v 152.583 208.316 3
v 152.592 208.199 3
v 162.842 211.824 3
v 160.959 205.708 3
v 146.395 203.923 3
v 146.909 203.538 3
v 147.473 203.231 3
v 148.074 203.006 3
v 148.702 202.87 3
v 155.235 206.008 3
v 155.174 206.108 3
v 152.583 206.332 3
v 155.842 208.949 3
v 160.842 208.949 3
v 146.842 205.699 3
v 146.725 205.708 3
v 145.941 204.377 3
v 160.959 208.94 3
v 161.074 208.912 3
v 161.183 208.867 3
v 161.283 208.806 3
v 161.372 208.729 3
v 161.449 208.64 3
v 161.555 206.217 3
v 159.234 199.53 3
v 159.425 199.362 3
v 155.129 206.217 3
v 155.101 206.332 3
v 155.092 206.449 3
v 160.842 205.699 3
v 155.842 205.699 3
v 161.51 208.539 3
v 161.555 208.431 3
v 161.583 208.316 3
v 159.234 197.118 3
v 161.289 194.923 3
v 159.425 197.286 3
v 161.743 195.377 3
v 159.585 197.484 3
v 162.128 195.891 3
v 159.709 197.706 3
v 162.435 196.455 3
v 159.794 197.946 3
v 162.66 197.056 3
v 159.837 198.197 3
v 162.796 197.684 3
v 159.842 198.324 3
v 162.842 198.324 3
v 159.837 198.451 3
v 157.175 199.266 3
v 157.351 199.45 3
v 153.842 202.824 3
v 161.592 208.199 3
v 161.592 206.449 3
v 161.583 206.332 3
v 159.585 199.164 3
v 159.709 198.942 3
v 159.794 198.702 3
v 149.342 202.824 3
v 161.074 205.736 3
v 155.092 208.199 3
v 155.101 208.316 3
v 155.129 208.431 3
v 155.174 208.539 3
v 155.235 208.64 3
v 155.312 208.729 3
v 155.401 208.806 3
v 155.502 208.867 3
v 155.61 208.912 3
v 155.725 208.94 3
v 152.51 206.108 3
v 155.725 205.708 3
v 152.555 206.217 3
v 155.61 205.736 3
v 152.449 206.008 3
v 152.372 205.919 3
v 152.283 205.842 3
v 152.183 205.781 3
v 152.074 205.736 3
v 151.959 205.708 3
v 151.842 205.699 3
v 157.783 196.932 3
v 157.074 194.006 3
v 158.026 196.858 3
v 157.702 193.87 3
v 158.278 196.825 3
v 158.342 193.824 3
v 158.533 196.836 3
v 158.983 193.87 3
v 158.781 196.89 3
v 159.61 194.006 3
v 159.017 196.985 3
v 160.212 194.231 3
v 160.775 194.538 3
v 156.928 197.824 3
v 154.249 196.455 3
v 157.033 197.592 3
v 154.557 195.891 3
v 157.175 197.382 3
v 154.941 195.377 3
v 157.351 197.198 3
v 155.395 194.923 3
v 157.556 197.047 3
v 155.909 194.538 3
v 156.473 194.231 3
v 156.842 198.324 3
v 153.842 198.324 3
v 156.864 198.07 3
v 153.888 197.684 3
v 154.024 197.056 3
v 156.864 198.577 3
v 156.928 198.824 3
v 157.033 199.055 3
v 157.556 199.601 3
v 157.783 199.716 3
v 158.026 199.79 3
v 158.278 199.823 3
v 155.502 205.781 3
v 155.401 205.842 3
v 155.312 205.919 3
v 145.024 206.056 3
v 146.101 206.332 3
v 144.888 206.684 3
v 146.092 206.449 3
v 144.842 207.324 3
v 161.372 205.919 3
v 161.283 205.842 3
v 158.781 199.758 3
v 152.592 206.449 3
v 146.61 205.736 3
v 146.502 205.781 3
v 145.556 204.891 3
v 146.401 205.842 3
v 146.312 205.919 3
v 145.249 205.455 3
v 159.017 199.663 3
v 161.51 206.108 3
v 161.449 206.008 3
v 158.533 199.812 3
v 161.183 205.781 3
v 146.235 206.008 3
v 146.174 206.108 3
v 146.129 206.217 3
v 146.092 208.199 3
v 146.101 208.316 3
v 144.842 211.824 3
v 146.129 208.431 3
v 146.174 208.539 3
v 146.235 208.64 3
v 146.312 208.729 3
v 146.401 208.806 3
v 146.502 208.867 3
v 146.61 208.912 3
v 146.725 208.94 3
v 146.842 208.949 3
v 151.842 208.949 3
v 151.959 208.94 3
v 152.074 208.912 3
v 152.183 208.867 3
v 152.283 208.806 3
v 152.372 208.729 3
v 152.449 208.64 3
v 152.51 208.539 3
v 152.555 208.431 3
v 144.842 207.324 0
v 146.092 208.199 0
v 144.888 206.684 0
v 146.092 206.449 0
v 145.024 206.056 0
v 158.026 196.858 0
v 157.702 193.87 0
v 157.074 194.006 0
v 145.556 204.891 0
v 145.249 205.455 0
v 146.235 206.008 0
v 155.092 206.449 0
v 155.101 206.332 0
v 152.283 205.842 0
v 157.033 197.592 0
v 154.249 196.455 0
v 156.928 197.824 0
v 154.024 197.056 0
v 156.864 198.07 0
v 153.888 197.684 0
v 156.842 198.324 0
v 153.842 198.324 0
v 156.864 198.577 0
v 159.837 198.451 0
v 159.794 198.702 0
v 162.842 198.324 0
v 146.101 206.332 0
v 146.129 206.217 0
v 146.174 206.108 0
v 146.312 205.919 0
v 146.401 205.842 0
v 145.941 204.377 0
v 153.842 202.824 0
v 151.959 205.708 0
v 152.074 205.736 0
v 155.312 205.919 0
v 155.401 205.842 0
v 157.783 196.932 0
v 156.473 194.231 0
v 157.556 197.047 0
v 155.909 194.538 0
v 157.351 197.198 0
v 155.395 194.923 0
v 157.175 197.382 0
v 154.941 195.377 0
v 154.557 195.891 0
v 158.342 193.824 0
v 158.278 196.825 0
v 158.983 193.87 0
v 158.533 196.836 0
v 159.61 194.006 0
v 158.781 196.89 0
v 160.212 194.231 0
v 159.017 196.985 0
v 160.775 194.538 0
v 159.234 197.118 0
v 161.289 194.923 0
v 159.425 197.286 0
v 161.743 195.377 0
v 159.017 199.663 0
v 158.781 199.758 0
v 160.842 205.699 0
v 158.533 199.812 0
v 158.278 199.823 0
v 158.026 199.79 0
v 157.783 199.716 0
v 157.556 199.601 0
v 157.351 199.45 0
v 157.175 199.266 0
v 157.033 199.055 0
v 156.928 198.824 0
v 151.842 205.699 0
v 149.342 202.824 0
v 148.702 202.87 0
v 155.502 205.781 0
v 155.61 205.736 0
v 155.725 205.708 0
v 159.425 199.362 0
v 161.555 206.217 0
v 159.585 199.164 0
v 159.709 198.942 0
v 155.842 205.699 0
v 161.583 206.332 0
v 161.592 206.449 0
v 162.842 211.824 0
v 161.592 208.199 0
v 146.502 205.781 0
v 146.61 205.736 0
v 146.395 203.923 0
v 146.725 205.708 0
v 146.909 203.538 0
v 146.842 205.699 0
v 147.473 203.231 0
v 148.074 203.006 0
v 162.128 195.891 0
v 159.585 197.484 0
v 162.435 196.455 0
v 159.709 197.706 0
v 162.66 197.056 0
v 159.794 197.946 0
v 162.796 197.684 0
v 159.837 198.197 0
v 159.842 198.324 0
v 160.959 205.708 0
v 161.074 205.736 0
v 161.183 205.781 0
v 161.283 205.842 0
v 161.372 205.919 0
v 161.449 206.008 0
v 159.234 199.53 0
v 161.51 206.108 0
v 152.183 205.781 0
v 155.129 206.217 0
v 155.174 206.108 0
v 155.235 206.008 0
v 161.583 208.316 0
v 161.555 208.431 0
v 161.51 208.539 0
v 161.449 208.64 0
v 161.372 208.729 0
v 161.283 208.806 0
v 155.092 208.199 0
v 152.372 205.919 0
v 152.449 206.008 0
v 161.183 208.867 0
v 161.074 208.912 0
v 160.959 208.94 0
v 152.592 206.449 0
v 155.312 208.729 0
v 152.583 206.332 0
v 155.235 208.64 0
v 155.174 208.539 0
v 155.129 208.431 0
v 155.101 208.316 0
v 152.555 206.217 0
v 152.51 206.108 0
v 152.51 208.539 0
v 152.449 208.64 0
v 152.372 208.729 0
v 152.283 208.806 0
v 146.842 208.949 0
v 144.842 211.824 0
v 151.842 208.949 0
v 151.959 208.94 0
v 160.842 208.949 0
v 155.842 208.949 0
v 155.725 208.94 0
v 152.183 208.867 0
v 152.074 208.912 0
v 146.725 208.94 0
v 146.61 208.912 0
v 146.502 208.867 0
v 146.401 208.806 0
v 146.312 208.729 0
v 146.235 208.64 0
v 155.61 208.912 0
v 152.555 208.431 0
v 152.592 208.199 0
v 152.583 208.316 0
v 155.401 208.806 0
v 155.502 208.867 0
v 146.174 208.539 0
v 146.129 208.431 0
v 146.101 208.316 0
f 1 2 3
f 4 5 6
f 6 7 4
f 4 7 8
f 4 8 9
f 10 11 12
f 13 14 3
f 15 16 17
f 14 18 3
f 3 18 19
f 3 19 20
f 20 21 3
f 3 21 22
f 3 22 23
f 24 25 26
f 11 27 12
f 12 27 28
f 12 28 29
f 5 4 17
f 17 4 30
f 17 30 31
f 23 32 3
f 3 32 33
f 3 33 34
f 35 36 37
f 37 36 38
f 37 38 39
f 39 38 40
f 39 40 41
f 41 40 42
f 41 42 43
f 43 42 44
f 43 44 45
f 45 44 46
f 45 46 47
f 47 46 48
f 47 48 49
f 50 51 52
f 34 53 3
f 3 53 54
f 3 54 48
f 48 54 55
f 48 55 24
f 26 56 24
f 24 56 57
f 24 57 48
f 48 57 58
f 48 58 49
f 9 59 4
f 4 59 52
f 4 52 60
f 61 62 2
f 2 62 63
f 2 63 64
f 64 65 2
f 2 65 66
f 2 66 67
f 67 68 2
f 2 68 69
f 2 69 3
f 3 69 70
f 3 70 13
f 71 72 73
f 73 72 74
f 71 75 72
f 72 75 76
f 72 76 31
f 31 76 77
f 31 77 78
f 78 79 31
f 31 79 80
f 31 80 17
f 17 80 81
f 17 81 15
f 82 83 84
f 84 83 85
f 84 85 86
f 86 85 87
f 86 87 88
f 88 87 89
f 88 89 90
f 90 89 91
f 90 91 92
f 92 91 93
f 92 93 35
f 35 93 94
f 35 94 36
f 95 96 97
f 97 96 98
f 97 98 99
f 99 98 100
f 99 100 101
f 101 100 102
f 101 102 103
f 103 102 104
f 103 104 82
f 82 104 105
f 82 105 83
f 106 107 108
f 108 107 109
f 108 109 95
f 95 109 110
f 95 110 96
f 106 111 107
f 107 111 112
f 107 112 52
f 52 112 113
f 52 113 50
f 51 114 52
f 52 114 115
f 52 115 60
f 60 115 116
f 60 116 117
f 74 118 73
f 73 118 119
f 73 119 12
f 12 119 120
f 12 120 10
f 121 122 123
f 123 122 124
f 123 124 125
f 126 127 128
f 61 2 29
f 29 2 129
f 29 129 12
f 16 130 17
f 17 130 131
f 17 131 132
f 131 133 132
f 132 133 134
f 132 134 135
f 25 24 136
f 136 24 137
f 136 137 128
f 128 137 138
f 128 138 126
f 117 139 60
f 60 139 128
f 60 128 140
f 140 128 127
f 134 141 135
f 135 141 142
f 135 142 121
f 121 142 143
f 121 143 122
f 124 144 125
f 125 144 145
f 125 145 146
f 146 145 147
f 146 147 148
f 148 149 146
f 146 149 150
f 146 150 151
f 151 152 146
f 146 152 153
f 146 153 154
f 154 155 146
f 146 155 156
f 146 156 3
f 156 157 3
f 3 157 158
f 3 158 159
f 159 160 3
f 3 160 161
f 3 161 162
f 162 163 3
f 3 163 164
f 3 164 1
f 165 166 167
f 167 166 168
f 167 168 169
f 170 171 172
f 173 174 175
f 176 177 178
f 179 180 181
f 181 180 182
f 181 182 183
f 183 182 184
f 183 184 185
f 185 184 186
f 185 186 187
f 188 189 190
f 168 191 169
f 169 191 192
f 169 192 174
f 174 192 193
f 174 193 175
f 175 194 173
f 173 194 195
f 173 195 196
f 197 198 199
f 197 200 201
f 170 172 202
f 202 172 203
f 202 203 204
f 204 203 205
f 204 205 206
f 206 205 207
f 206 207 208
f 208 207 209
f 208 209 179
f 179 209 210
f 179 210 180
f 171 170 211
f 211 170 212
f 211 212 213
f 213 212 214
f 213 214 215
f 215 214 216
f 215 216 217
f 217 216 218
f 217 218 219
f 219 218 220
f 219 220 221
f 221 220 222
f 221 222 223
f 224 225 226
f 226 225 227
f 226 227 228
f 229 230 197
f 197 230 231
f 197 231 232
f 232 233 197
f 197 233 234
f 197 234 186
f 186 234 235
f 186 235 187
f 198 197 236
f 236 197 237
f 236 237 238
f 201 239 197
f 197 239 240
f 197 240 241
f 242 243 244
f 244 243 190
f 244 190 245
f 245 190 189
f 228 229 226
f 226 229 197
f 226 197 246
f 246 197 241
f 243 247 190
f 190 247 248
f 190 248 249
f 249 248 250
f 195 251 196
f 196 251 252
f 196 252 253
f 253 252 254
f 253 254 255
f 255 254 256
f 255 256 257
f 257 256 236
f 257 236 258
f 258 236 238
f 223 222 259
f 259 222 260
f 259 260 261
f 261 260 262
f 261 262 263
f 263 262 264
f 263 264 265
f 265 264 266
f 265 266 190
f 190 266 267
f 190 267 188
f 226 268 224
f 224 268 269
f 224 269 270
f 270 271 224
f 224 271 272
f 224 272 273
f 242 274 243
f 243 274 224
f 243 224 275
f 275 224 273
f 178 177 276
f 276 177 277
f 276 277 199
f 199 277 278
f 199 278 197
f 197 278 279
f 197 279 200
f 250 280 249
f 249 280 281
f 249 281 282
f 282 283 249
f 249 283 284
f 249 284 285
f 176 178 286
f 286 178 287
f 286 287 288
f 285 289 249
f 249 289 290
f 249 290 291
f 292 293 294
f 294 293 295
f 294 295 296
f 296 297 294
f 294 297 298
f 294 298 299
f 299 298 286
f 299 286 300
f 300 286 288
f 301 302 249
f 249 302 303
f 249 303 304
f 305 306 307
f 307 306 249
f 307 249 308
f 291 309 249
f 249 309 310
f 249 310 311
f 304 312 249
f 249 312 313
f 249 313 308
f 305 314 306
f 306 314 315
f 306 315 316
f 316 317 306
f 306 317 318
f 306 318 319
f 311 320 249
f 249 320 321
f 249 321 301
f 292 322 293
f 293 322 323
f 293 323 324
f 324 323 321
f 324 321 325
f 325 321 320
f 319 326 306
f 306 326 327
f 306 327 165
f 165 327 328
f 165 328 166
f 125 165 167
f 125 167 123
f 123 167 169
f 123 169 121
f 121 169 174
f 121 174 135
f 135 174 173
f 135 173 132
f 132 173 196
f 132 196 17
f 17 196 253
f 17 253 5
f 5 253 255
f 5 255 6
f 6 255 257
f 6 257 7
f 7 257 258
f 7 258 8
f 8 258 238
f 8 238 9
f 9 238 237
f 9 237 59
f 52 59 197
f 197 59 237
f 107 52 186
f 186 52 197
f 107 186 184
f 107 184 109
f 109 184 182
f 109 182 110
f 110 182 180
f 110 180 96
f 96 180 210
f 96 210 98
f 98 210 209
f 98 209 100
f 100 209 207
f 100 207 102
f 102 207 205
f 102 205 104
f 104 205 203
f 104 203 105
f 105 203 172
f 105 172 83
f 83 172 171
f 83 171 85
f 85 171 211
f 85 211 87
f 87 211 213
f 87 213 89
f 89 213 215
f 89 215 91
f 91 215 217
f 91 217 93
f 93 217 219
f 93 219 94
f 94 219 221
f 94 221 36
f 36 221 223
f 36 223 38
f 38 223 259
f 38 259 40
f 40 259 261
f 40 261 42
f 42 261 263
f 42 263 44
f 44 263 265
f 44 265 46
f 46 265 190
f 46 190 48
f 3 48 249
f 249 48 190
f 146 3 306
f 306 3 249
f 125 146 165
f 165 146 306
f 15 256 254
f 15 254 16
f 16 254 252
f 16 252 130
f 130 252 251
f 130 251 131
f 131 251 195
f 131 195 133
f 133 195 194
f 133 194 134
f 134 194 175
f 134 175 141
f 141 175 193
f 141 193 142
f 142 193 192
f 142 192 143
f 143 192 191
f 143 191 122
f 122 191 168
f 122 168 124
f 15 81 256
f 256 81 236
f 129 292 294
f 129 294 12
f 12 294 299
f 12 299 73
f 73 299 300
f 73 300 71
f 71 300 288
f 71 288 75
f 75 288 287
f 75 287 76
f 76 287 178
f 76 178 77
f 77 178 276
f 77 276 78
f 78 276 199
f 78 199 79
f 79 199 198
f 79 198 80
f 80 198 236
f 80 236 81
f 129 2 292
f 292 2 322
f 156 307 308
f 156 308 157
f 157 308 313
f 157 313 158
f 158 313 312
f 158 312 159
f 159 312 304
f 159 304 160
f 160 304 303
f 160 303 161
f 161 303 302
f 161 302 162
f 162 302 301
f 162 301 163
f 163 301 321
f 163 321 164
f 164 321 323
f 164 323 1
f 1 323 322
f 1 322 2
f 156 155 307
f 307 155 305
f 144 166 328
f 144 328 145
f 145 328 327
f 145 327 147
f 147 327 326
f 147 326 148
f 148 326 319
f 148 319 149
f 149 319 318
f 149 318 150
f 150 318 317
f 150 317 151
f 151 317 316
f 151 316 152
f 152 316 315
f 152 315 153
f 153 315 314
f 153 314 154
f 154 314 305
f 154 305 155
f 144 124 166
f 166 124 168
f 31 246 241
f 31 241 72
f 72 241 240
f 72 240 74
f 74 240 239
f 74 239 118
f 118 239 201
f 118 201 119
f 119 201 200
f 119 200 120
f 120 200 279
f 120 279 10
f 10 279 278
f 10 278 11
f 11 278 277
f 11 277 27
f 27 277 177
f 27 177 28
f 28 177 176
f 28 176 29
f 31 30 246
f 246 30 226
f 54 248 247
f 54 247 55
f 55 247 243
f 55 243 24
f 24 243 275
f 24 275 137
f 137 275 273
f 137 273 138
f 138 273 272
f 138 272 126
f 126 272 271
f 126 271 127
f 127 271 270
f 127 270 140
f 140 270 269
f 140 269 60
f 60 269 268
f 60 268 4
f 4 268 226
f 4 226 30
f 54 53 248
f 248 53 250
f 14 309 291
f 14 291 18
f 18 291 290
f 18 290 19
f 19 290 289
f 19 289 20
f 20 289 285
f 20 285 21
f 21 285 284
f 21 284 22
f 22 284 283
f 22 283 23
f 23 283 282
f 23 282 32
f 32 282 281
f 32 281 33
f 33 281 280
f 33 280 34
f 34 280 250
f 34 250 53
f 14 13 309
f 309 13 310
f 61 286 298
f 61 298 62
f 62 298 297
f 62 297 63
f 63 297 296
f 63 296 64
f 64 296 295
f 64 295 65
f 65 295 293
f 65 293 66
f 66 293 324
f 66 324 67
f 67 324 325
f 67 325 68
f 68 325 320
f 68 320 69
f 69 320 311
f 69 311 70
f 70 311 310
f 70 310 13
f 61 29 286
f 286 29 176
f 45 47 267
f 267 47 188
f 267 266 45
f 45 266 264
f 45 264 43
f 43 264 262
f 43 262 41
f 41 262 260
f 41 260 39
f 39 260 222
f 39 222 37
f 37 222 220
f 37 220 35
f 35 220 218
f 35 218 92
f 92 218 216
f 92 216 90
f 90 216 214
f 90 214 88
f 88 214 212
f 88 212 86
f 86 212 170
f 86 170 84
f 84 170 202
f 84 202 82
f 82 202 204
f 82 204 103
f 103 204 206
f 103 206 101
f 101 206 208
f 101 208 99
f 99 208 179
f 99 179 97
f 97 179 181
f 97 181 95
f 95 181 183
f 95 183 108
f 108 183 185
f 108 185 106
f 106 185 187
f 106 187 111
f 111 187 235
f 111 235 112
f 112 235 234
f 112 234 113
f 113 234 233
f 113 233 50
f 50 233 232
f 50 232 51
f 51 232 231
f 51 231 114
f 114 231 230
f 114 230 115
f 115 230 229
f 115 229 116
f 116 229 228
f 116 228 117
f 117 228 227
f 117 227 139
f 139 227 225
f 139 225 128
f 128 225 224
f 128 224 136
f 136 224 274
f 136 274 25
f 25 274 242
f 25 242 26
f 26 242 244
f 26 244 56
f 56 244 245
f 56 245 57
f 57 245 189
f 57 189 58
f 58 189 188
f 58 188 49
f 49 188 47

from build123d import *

# Parameters (mm, degrees)
MODEL_R                 = 1.5
SALIENTE_EXTRUIR1_DEPTH = 3


with BuildPart() as part:
    # Model → Saliente-Extruir1 (new body)
    with BuildSketch(Plane.XY):
        with BuildLine():
            Line((149.34213351, 211.823953209), (158.34213351, 211.823953209))
            Line((158.34213351, 211.823953209), (162.84213351, 211.823953209))
            Line((162.84213351, 211.823953209), (162.84213351, 198.323953209))
            ThreePointArc((162.84213351, 198.323953209), (158.34213351, 193.823953209), (153.84213351, 198.323953209))
            Line((153.84213351, 198.323953209), (153.84213351, 202.823953209))
            Line((153.84213351, 202.823953209), (149.34213351, 202.823953209))
            ThreePointArc((149.34213351, 202.823953209), (146.160152994, 204.141972694), (144.84213351, 207.323953209))
            Line((144.84213351, 207.323953209), (144.84213351, 211.823953209))
            Line((144.84213351, 211.823953209), (149.34213351, 211.823953209))
        make_face()
        with Locations((158.34213351, 198.323953209)):
            Circle(MODEL_R, mode=Mode.SUBTRACT)
        with BuildLine():
            Line((151.84213351, 205.698953209), (146.84213351, 205.698953209))
            ThreePointArc((146.84213351, 205.698953209), (146.311803424, 205.918623123), (146.09213351, 206.448953209))
            Line((146.09213351, 206.448953209), (146.09213351, 208.198953209))
            ThreePointArc((146.09213351, 208.198953209), (146.311803424, 208.729283295), (146.84213351, 208.948953209))
            Line((146.84213351, 208.948953209), (151.84213351, 208.948953209))
            ThreePointArc((151.84213351, 208.948953209), (152.372463595, 208.729283295), (152.59213351, 208.198953209))
            Line((152.59213351, 208.198953209), (152.59213351, 206.448953209))
            ThreePointArc((152.59213351, 206.448953209), (152.372463595, 205.918623123), (151.84213351, 205.698953209))
        make_face(mode=Mode.SUBTRACT)
        with BuildLine():
            Line((160.84213351, 205.698953209), (155.84213351, 205.698953209))
            ThreePointArc((155.84213351, 205.698953209), (155.311803424, 205.918623123), (155.09213351, 206.448953209))
            Line((155.09213351, 206.448953209), (155.09213351, 208.198953209))
            ThreePointArc((155.09213351, 208.198953209), (155.311803424, 208.729283295), (155.84213351, 208.948953209))
            Line((155.84213351, 208.948953209), (160.84213351, 208.948953209))
            ThreePointArc((160.84213351, 208.948953209), (161.372463595, 208.729283295), (161.59213351, 208.198953209))
            Line((161.59213351, 208.198953209), (161.59213351, 206.448953209))
            ThreePointArc((161.59213351, 206.448953209), (161.372463595, 205.918623123), (160.84213351, 205.698953209))
        make_face(mode=Mode.SUBTRACT)
    extrude(amount=SALIENTE_EXTRUIR1_DEPTH)


solid = part.part
